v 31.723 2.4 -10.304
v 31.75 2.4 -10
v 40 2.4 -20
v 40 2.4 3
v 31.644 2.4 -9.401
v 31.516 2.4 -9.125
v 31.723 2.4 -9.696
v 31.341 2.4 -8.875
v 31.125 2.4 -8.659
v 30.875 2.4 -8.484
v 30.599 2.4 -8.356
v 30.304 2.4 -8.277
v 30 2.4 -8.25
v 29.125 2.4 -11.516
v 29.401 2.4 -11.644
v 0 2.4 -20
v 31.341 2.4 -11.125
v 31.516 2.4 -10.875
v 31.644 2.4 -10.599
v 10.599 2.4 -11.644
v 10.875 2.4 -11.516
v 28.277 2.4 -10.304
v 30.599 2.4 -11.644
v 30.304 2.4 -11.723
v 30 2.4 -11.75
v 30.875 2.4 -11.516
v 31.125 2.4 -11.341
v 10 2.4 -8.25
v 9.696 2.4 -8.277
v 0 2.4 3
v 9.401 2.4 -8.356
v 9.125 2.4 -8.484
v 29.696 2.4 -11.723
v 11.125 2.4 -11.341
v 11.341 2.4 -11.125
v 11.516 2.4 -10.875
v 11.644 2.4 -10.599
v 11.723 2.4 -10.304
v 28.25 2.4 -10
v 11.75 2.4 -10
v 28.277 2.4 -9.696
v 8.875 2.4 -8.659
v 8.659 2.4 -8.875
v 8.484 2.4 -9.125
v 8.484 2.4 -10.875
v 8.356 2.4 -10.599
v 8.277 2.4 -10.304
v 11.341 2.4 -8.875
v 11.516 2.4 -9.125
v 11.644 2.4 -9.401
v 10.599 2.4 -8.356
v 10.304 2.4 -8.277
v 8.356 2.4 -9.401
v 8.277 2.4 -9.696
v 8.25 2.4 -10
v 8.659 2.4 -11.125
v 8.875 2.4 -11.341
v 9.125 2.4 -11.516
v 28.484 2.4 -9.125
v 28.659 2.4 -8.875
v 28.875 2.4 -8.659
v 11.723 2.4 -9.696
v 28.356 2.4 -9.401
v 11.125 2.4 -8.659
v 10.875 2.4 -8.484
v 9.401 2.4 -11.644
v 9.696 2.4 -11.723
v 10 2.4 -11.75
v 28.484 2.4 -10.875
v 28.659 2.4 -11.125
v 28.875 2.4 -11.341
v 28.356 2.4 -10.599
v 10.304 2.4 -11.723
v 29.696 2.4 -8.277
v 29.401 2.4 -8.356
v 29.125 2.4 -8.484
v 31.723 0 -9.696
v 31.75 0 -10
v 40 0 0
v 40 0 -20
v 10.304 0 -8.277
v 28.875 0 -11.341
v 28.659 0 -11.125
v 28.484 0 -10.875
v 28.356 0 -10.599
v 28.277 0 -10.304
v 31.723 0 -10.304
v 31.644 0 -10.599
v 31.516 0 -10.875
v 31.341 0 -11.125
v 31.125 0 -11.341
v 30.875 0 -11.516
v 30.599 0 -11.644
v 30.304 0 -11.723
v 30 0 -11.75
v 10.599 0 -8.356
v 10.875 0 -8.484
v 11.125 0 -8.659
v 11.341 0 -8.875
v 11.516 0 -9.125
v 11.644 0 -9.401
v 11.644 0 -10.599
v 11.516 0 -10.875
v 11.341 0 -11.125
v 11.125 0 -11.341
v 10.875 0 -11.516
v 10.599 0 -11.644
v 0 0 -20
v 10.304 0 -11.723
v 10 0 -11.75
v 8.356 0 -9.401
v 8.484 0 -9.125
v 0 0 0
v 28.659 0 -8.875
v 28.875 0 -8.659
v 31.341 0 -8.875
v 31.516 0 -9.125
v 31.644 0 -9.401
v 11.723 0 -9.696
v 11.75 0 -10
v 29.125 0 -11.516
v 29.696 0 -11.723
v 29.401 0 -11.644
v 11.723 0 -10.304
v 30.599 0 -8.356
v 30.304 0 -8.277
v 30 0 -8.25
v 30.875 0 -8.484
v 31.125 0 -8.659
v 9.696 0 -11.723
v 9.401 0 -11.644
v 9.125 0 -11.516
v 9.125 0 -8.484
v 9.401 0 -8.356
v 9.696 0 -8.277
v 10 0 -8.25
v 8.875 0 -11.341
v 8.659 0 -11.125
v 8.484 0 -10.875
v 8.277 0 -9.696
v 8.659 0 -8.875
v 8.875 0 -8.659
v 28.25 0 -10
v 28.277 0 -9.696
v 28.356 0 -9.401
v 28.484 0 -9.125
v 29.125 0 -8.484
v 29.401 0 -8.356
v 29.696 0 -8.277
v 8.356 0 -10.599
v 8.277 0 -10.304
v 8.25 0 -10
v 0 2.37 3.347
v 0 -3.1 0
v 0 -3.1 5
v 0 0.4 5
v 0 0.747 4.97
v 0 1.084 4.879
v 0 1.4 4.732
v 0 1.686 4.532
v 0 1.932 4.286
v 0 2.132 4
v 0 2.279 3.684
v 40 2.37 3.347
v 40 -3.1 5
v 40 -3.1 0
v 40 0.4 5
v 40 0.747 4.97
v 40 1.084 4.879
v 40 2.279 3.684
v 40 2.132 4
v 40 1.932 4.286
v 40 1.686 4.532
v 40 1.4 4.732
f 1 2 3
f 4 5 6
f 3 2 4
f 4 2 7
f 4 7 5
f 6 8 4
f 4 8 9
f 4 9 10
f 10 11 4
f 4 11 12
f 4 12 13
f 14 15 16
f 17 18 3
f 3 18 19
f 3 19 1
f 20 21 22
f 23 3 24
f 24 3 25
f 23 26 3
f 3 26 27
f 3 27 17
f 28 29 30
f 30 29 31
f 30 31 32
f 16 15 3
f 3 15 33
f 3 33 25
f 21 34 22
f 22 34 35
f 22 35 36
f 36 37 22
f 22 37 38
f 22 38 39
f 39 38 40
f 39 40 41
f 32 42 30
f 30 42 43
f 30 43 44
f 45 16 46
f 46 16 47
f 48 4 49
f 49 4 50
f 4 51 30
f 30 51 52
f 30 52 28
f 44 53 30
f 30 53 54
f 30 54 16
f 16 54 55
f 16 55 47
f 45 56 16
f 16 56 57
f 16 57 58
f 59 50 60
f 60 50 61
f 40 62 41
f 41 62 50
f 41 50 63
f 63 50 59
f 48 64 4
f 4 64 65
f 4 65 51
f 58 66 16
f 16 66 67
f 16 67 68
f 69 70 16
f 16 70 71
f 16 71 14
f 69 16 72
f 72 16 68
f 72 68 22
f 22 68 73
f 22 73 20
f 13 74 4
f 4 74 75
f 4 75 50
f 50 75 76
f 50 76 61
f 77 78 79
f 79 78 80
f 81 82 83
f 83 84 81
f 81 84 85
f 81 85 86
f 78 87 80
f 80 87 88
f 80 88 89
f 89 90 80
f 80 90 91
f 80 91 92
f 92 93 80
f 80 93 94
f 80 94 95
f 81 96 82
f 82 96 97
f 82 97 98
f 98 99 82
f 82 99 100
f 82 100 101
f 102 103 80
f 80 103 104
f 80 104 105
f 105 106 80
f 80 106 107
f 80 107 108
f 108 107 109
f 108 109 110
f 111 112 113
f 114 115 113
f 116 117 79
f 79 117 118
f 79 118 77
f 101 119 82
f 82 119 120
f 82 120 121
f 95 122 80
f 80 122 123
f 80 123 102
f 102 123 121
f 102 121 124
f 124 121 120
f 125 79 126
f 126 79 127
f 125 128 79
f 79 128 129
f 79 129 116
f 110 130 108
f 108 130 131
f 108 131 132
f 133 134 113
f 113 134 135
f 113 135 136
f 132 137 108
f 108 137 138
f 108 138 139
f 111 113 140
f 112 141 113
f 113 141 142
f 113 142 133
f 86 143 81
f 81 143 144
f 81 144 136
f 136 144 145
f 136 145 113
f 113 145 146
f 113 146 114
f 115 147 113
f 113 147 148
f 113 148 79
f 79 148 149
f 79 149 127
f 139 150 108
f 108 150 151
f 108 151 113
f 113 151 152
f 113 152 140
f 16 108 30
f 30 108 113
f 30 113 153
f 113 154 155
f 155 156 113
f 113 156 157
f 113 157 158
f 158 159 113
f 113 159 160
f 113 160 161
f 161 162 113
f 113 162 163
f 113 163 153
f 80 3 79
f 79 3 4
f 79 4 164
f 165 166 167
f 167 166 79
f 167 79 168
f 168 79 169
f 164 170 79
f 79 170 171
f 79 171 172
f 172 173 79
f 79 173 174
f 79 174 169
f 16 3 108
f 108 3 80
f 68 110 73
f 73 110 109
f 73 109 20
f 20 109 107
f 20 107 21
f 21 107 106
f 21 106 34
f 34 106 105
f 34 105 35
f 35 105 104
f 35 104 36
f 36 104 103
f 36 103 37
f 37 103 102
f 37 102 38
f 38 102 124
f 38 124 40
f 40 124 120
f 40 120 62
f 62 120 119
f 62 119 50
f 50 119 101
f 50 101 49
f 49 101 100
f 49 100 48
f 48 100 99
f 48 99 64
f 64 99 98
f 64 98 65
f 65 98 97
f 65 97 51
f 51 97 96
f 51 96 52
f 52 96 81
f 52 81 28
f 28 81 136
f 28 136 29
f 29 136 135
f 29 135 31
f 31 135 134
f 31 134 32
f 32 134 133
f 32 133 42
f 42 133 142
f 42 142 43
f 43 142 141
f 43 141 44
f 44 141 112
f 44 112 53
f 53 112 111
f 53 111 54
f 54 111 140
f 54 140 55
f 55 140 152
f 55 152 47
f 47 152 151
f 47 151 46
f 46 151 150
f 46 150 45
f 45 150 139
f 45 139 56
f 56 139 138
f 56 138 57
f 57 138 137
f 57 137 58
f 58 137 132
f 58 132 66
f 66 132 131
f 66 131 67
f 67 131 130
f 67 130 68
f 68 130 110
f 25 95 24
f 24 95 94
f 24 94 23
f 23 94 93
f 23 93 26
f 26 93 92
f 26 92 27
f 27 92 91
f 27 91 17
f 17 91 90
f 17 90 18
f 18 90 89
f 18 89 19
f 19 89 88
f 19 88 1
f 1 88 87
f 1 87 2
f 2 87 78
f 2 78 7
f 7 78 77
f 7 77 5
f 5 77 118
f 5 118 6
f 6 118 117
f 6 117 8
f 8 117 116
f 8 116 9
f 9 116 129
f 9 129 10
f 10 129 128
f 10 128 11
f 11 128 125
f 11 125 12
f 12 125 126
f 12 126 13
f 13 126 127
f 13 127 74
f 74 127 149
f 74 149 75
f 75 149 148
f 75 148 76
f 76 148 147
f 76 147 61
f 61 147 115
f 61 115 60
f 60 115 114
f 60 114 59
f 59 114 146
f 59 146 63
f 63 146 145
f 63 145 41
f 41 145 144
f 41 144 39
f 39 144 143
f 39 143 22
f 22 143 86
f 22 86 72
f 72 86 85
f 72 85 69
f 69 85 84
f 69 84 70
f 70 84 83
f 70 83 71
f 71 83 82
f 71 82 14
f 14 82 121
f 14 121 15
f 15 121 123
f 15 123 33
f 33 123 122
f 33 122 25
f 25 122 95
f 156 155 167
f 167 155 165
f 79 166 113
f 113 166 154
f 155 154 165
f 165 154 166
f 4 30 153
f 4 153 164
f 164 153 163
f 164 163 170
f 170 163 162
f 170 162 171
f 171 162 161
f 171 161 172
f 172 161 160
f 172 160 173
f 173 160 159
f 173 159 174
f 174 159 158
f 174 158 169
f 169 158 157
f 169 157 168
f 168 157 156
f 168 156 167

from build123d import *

# Parameters (mm, degrees)
SKETCH1_W           = 40
SKETCH1_H           = 20
SKETCH1_R           = 1.75
BOSS_EXTRUDE1_DEPTH = 2.4
SKETCH2_W           = 40
SKETCH2_H           = 5
BOSS_EXTRUDE2_DEPTH = 5.5
FILLET1_R           = 2


with BuildPart() as part:
    # Sketch1 → Boss-Extrude1 (new body)
    with BuildSketch(Plane(origin=(0, 0, 0), x_dir=(1, 0, 0), z_dir=(0, 1, 0))):
        with Locations((20, 10)):
            Rectangle(SKETCH1_W, SKETCH1_H)
        with Locations((10, 10)):
            Circle(SKETCH1_R, mode=Mode.SUBTRACT)
        with Locations((30, 10)):
            Circle(SKETCH1_R, mode=Mode.SUBTRACT)
    extrude(amount=BOSS_EXTRUDE1_DEPTH)

    # Sketch2 → Boss-Extrude2 (add)
    with BuildSketch(Plane(origin=(0, 2.4, 0), x_dir=(1, 0, 0), z_dir=(0, 1, 0))):
        with Locations((20, -2.5)):
            Rectangle(SKETCH2_W, SKETCH2_H)
    extrude(amount=-BOSS_EXTRUDE2_DEPTH)

    # Fillet1
    fillet1_edges = [part.edges().sort_by_distance(p)[0] for p in [
        (20, 2.4, 5),
    ]]
    fillet(fillet1_edges, radius=FILLET1_R)


solid = part.part
